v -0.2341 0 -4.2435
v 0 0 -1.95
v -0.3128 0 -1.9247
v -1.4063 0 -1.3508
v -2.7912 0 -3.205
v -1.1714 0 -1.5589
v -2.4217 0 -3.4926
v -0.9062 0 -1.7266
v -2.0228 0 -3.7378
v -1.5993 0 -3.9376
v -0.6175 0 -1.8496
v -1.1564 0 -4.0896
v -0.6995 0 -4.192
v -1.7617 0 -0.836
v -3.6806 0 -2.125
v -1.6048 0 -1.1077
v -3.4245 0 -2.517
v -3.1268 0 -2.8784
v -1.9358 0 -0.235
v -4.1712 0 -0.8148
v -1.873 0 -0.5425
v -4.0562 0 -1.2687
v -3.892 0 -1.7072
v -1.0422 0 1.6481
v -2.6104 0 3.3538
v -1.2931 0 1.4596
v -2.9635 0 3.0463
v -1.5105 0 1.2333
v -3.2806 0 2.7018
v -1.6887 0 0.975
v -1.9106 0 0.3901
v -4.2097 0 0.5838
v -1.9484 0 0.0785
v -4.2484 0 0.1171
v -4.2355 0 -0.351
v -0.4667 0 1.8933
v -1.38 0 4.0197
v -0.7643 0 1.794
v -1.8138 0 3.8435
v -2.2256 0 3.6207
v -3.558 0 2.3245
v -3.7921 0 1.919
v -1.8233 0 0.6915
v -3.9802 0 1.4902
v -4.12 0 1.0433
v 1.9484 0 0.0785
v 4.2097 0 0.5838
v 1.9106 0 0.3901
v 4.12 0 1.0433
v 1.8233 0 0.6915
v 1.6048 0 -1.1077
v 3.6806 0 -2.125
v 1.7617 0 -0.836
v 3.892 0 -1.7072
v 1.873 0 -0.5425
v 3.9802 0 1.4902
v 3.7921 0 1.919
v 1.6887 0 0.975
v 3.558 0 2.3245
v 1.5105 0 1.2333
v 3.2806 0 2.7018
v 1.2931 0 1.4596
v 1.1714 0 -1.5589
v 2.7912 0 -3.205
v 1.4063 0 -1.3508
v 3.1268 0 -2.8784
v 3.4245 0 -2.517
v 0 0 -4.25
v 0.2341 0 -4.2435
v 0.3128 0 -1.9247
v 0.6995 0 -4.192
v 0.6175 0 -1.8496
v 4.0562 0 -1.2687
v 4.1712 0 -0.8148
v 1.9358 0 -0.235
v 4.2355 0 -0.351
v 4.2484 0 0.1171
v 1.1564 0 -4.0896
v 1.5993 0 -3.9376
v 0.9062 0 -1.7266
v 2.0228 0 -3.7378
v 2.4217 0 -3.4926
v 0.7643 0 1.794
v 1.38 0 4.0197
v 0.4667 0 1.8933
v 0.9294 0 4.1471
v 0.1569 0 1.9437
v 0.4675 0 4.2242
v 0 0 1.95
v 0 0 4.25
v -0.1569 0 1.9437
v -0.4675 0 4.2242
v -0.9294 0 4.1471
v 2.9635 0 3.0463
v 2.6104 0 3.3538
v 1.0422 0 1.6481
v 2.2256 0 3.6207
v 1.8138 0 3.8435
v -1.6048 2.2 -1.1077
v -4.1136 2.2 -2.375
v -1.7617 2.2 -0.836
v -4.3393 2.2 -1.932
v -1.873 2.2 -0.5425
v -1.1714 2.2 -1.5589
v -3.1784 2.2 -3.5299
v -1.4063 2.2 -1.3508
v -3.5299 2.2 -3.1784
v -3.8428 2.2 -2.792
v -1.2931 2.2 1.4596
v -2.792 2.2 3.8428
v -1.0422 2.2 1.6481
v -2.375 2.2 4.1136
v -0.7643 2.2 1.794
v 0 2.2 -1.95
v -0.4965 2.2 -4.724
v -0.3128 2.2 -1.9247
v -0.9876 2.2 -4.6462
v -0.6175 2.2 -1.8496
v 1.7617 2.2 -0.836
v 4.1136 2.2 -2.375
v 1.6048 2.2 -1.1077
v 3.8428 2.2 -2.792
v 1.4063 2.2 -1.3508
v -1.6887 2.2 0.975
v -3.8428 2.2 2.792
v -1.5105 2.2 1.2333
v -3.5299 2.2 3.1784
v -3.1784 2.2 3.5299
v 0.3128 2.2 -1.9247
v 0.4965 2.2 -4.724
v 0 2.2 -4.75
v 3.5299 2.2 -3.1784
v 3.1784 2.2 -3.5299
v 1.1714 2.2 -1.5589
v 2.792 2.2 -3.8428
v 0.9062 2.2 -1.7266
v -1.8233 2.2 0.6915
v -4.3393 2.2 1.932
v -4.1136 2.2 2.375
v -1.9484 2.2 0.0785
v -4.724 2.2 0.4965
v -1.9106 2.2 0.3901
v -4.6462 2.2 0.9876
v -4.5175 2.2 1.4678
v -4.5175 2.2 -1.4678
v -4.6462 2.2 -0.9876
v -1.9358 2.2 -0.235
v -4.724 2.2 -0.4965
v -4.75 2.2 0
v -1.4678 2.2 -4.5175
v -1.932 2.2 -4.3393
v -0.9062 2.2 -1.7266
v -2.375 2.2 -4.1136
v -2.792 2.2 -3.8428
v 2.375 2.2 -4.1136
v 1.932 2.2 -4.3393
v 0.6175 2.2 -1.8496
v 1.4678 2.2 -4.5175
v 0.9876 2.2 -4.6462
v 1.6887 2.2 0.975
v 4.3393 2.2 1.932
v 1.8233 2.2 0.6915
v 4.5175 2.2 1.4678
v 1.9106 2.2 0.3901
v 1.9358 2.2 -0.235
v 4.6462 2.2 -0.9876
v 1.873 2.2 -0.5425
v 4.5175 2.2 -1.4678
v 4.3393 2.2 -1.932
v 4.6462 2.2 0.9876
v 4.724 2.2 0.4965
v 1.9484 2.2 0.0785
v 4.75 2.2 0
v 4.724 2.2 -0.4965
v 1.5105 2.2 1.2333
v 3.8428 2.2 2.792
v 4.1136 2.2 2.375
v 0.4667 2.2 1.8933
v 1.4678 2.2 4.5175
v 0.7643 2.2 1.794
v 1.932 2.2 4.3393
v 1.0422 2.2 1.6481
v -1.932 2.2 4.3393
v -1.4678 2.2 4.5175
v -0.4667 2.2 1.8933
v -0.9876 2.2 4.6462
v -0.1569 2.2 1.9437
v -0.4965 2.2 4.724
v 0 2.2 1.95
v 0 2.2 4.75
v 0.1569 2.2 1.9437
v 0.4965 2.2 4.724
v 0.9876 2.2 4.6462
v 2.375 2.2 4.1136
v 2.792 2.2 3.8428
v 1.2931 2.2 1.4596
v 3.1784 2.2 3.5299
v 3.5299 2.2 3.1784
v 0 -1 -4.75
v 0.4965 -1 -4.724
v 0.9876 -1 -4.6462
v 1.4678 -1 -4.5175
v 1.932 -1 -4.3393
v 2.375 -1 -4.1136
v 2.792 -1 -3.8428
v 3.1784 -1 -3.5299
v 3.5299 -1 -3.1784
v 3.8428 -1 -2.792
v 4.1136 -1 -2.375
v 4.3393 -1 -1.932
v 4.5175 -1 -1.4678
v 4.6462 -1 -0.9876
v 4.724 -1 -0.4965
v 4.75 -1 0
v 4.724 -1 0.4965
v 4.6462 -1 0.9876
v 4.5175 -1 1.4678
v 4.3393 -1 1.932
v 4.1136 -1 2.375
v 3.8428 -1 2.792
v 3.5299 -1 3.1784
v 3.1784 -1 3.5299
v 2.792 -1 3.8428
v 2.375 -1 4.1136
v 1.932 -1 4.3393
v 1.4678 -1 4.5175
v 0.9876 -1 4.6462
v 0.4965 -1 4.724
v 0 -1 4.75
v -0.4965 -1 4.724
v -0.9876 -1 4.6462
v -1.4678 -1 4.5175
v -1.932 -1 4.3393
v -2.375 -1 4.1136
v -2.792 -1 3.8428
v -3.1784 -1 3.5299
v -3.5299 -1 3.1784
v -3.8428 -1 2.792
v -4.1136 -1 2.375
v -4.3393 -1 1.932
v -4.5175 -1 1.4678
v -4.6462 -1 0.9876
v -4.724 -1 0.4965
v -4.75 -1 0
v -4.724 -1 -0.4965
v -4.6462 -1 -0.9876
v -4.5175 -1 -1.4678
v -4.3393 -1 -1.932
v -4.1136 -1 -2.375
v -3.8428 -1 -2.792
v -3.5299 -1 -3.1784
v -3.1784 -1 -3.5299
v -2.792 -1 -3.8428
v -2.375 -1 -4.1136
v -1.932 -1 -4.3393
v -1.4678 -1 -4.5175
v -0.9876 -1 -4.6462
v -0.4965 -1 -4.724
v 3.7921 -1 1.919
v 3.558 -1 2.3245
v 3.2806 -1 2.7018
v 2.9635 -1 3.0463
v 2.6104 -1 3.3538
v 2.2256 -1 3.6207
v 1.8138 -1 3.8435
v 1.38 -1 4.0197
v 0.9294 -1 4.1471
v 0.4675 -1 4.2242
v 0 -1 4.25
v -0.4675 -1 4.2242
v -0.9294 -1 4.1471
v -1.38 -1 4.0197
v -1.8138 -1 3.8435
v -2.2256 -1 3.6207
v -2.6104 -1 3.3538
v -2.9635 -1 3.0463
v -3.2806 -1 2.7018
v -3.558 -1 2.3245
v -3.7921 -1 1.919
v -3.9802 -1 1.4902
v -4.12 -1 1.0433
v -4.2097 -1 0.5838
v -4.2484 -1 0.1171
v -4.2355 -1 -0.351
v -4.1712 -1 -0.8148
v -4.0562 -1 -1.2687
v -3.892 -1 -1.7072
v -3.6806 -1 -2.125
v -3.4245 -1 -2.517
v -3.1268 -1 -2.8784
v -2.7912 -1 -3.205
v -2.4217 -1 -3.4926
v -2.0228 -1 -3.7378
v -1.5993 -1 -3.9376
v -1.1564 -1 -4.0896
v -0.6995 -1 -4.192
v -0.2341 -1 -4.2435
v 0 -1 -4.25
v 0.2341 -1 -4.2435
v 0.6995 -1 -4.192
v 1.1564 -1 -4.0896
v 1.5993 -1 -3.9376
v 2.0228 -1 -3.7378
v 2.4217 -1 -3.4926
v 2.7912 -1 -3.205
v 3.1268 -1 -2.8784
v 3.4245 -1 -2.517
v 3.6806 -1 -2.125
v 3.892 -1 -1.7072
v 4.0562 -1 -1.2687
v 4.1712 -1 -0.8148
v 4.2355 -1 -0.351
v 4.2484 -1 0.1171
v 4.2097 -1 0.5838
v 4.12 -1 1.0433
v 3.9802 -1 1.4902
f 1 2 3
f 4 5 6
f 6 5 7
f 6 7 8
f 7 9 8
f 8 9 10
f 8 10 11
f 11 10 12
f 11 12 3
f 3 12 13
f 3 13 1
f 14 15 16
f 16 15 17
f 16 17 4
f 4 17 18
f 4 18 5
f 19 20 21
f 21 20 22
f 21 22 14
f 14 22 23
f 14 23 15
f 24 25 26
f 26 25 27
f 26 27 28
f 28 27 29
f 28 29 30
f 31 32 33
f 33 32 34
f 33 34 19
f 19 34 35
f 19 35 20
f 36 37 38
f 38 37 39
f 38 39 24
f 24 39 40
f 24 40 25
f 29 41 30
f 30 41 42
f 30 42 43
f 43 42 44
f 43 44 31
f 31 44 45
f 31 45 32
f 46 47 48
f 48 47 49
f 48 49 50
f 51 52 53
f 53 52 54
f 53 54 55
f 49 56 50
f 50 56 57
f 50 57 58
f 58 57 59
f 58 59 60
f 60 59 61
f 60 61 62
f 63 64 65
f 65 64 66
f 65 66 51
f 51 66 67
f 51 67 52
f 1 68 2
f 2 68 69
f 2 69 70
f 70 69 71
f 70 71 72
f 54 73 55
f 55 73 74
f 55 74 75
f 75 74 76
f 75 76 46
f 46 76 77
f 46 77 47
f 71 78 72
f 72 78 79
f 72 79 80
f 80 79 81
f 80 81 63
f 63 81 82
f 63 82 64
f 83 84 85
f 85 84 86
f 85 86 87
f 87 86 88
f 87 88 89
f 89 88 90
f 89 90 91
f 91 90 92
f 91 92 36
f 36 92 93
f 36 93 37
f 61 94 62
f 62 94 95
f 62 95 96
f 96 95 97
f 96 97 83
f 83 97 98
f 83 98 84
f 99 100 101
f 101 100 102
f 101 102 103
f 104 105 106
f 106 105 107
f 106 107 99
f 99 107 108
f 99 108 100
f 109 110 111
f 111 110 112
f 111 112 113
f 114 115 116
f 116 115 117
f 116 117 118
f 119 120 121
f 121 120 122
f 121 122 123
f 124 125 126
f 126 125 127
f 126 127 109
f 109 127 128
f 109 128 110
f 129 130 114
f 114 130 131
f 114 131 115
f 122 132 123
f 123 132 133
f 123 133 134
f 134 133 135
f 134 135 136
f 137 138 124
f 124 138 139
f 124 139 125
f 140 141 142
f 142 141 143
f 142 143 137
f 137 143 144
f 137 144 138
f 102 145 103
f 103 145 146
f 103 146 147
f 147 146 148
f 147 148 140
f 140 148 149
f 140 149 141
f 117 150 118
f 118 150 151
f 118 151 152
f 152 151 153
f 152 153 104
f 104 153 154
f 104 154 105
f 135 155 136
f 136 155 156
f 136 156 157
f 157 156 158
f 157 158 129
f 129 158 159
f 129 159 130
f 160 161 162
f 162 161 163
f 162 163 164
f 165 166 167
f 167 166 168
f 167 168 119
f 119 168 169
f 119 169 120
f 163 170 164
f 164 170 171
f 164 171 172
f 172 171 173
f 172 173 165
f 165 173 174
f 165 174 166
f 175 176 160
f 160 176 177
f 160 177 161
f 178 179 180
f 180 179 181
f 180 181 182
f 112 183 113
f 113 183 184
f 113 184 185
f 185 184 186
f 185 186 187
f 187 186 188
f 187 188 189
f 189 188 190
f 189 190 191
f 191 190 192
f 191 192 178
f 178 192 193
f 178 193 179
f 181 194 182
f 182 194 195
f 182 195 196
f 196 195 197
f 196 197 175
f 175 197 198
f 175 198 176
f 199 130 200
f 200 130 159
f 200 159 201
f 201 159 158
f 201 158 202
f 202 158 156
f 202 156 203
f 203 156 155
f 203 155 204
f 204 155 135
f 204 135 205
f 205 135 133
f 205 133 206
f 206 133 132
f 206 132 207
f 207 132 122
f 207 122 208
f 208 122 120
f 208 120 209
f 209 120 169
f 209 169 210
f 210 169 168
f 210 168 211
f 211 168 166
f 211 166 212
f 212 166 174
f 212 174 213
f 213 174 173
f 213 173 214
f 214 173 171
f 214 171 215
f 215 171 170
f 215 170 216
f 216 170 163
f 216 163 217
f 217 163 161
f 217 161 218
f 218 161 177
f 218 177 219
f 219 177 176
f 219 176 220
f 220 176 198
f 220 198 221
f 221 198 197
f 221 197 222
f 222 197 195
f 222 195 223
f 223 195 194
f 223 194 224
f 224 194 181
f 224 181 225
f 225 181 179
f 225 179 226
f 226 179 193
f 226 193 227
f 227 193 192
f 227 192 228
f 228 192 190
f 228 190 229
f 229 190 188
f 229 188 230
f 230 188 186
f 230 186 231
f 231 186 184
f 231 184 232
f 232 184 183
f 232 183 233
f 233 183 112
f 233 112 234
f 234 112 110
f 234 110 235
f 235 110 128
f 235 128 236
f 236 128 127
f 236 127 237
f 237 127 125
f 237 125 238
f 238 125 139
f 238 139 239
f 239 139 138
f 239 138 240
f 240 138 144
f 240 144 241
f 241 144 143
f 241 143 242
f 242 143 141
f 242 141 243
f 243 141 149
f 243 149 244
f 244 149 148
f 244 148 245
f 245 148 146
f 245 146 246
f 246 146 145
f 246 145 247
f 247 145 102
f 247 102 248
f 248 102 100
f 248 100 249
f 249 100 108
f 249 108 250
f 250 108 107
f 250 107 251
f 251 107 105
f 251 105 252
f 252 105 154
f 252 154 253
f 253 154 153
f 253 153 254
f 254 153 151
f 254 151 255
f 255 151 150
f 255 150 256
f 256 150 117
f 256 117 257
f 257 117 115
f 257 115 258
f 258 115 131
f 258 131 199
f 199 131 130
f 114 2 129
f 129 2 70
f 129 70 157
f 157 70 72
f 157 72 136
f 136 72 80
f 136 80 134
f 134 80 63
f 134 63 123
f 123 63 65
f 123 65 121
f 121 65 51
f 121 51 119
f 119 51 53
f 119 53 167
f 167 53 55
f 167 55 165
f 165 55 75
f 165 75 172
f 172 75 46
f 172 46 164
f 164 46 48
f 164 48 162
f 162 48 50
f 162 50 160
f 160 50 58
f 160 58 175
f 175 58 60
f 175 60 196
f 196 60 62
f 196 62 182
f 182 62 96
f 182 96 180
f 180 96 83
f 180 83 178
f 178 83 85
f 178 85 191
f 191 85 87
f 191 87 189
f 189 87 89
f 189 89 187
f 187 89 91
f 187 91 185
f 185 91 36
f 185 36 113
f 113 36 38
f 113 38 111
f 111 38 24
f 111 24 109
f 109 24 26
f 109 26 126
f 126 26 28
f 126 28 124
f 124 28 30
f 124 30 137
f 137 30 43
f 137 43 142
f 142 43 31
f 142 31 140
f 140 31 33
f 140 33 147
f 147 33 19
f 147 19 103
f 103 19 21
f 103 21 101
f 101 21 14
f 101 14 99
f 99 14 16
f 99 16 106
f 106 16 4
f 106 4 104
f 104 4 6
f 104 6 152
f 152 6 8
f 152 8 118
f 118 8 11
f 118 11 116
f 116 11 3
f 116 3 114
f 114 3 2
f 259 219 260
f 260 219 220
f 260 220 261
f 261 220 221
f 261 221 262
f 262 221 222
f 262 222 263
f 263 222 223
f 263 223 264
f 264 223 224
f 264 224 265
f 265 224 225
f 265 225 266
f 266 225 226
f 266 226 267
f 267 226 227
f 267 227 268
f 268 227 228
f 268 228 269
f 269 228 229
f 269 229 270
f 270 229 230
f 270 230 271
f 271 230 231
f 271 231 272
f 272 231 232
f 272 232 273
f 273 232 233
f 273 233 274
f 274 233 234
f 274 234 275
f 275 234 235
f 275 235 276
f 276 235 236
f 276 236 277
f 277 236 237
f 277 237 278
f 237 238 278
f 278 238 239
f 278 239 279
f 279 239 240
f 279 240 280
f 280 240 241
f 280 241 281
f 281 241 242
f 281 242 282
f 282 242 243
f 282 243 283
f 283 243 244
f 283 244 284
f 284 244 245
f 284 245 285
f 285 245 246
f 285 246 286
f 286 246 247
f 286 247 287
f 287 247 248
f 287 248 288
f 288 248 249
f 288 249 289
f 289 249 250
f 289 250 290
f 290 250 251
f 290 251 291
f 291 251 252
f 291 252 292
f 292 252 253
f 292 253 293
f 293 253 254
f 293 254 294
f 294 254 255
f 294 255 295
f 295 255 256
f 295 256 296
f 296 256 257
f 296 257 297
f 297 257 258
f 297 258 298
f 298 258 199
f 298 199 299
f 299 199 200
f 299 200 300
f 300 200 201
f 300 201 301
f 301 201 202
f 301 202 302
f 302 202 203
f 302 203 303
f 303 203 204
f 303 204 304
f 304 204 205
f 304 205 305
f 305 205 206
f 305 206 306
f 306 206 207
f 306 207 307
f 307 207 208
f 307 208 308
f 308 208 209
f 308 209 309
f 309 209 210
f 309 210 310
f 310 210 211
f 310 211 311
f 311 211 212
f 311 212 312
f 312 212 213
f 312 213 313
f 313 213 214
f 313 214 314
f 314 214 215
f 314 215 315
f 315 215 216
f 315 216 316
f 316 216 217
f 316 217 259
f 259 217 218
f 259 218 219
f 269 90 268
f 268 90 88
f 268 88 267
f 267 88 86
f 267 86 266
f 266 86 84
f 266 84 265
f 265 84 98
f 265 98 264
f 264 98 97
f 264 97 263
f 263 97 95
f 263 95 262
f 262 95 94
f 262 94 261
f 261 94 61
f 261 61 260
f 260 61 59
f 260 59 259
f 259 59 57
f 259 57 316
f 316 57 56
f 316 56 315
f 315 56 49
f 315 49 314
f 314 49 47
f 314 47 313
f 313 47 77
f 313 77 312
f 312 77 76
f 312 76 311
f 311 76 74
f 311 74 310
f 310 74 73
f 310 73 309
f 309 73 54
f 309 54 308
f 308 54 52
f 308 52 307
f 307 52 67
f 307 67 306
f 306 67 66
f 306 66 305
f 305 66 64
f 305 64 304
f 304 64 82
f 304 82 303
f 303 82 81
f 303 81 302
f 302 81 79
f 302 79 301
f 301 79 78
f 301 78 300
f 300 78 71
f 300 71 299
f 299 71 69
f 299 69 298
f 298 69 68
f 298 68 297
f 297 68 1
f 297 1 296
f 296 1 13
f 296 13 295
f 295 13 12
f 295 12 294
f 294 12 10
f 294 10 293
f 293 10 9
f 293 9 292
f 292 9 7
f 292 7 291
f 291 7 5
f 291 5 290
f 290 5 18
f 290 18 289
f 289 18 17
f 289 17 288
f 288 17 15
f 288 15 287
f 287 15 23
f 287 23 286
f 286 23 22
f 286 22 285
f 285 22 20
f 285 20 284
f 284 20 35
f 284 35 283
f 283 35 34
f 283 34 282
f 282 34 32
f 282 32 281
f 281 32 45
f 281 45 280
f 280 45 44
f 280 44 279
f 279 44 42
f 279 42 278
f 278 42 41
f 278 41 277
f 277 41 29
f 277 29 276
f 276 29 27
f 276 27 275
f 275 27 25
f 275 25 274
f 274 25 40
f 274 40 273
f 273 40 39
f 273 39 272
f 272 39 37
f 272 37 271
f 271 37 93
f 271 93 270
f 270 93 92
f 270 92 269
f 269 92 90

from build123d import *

# Parameters (mm, degrees)
SKIZZE1_R                       = 4.75
SKIZZE1_R_2                     = 1.95
AUFSATZ_LINEAR_AUSTRAGEN1_DEPTH = 2.2
AUFSATZ_LINEAR_START            = 1
SKIZZE2_R                       = 4.75
SKIZZE2_R_2                     = 4.25
AUFSATZ_LINEAR_AUSTRAGEN2_DEPTH = 1


with BuildPart() as part:
    # Skizze1 → Aufsatz-Linear austragen1 (new body)
    with BuildSketch(Plane(origin=(0, 0, 0), x_dir=(1, 0, 0), z_dir=(0, 1, 0))):
        with Locations(Location((0, 0, 0), (0, 0, 270))):
            Circle(SKIZZE1_R)
        with Locations(Location((0, 0, 0), (0, 0, 270))):
            Circle(SKIZZE1_R_2, mode=Mode.SUBTRACT)
    extrude(amount=AUFSATZ_LINEAR_AUSTRAGEN1_DEPTH)

    # Skizze2 → Aufsatz-Linear austragen2 (add)
    with BuildSketch(Plane.XZ.offset(AUFSATZ_LINEAR_START)):
        with Locations(Location((0, 0, 0), (0, 0, 270))):
            Circle(SKIZZE2_R)
        with Locations(Location((0, 0, 0), (0, 0, 270))):
            Circle(SKIZZE2_R_2, mode=Mode.SUBTRACT)
    extrude(amount=-AUFSATZ_LINEAR_AUSTRAGEN2_DEPTH)


solid = part.part
